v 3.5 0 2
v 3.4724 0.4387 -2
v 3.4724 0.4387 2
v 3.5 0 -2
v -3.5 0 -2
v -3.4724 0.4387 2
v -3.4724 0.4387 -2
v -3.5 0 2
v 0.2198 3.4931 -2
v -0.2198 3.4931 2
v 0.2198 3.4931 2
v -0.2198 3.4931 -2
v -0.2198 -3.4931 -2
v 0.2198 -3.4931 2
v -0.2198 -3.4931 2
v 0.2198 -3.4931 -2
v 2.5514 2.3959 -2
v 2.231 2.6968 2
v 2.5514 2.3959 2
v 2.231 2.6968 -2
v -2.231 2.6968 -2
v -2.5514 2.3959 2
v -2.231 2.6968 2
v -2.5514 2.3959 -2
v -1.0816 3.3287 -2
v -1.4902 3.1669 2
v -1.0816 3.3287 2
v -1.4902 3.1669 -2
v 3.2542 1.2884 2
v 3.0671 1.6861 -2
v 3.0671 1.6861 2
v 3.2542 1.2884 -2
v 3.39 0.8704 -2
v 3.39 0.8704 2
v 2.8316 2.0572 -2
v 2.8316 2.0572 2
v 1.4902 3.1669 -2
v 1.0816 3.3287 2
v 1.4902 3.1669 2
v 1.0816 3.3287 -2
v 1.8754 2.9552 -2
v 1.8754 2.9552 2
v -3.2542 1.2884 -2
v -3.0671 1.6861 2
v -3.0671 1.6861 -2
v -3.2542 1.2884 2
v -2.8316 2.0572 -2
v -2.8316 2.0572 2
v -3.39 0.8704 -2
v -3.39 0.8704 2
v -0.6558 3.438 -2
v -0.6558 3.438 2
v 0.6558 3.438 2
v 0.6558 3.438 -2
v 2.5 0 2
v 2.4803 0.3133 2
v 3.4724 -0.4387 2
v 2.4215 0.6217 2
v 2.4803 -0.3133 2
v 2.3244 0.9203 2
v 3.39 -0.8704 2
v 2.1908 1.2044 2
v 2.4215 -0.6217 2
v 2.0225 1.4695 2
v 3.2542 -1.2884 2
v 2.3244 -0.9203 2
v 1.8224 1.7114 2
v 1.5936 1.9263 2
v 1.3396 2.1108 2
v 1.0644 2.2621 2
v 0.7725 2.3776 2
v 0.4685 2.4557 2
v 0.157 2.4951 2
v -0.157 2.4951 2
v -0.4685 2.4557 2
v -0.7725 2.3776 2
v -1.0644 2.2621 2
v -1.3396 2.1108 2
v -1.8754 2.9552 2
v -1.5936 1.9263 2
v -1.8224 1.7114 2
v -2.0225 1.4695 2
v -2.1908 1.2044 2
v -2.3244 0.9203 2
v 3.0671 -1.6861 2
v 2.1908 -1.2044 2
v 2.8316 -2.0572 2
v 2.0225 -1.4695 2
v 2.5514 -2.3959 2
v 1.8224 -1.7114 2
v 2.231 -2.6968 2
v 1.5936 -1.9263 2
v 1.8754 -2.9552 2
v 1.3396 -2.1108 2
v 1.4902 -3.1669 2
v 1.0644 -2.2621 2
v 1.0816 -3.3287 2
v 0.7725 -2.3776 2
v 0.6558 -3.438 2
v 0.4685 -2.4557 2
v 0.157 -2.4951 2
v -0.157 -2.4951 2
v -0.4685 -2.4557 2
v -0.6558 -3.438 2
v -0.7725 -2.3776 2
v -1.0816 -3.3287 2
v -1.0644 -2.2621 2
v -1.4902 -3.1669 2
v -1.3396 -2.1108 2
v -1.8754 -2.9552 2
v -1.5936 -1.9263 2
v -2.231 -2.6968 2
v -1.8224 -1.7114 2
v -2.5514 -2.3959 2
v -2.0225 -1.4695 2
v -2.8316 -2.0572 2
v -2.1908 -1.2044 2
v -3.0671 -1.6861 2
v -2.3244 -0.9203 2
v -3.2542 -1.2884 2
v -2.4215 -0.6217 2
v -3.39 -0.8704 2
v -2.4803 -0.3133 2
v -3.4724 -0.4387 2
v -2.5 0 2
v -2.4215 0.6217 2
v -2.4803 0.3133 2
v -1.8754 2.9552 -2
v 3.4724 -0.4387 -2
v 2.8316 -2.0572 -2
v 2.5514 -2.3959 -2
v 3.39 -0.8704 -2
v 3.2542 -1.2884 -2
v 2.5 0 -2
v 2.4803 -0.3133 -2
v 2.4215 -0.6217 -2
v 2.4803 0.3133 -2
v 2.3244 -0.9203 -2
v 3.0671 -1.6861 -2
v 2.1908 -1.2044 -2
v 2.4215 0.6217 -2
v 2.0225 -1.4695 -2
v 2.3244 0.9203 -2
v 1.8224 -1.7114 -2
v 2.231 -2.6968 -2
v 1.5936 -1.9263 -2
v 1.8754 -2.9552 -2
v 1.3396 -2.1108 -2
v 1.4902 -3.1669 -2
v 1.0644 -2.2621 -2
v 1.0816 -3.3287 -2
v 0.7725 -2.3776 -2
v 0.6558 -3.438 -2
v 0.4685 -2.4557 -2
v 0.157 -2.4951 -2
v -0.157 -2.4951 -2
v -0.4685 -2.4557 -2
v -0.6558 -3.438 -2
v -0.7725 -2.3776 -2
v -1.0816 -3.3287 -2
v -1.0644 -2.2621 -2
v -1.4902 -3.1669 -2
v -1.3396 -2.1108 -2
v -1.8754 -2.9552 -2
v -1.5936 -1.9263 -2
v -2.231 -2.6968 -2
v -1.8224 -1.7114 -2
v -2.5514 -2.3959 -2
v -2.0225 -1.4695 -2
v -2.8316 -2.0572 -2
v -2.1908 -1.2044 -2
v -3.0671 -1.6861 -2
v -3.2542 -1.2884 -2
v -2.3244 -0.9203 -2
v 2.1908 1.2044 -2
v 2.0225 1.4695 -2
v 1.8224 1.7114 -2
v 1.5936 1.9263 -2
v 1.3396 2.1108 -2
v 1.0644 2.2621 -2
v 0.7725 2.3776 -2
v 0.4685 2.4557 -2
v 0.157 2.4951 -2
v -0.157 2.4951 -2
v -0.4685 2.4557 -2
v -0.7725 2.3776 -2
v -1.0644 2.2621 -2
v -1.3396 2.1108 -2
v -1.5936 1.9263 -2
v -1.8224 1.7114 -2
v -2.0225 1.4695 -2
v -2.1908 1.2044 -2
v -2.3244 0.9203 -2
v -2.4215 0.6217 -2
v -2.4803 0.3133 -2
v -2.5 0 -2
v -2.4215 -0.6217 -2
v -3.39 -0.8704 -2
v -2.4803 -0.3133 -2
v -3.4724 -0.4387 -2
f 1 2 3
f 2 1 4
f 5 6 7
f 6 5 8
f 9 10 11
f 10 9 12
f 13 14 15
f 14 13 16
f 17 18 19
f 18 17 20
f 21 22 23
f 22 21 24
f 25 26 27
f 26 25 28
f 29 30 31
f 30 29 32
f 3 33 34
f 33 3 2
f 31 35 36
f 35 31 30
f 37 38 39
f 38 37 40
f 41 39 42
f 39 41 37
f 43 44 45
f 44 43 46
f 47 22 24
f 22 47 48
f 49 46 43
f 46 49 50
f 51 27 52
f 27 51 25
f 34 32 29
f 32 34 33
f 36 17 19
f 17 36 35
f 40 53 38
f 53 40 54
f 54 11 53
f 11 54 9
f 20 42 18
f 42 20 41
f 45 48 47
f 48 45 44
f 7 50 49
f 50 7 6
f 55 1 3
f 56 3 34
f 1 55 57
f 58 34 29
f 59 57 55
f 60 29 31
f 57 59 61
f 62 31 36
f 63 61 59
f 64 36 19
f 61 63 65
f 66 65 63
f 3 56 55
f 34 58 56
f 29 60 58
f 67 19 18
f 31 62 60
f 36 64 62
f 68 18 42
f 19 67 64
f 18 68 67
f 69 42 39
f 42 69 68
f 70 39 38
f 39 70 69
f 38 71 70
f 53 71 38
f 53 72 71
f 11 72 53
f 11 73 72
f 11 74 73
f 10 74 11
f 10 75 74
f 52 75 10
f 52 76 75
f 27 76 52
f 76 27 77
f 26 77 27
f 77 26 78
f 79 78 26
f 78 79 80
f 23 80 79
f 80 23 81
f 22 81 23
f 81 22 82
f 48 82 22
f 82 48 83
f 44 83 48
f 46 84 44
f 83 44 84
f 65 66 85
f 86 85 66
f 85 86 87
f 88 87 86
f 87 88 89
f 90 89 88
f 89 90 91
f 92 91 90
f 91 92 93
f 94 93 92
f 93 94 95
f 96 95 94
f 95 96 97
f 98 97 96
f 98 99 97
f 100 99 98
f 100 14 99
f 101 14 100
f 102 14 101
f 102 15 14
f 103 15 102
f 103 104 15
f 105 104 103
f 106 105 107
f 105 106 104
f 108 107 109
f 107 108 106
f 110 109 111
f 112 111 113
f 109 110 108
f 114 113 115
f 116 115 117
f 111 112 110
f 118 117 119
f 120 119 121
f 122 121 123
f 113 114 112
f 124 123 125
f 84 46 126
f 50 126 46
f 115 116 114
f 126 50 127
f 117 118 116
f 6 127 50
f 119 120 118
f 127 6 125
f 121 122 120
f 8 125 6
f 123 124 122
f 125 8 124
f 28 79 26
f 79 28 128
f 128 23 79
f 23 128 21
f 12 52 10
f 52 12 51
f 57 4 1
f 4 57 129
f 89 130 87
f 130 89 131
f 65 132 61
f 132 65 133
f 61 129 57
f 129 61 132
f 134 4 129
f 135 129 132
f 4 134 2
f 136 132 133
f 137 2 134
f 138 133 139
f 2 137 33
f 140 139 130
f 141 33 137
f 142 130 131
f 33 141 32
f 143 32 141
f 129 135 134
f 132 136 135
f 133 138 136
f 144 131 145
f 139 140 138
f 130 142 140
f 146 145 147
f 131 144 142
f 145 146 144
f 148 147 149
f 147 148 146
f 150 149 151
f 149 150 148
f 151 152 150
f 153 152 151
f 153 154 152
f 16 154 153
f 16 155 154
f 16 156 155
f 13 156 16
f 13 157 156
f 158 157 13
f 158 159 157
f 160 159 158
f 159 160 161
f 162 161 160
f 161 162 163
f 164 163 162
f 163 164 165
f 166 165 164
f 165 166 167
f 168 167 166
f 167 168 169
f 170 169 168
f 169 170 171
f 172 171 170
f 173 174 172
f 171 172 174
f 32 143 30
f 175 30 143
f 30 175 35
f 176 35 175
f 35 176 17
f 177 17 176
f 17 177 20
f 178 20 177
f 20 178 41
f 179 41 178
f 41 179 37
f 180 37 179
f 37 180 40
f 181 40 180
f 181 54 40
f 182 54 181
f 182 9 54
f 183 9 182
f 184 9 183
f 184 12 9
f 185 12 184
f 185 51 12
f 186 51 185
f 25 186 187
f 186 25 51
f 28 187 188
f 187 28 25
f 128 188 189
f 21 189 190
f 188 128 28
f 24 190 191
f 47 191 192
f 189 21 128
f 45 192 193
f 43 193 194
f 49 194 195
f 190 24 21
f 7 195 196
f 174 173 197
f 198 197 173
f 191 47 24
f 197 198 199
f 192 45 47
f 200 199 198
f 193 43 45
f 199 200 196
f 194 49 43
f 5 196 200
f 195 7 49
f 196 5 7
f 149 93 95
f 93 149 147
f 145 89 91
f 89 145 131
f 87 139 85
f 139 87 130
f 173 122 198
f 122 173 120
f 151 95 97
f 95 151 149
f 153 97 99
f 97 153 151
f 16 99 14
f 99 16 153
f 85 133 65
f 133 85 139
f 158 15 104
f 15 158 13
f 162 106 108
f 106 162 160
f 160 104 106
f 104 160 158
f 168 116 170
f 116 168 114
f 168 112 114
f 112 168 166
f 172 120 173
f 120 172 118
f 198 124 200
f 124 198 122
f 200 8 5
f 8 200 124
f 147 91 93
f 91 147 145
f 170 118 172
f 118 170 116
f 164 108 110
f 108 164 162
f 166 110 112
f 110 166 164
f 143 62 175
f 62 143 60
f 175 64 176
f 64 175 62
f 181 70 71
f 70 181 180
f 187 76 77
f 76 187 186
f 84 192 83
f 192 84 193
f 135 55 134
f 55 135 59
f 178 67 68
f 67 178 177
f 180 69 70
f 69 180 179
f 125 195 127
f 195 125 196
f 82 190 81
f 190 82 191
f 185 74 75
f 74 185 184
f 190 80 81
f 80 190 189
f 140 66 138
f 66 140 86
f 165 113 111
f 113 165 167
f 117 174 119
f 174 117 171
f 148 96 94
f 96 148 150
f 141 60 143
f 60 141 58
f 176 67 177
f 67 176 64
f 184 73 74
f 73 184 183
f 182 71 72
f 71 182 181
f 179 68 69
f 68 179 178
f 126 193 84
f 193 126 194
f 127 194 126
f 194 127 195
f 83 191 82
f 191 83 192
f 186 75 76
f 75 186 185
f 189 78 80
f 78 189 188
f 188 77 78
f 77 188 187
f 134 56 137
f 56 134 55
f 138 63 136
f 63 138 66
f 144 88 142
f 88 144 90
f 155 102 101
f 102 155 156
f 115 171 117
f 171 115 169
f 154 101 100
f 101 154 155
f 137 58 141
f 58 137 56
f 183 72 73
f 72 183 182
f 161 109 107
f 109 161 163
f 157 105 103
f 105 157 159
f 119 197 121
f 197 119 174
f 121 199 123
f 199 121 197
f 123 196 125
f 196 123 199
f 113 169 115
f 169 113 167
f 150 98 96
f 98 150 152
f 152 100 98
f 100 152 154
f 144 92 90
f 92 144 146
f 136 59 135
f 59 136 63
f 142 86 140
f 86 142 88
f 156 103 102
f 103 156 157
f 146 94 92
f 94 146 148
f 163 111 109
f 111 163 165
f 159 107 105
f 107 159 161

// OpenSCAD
$fn = 50;


difference() {
	union() {
		translate(v = [0, 0, -2.0000000000]) {
			cylinder(h = 4, r = 3.5000000000);
		}
	}
	union() {
		translate(v = [0, 0, -100.0000000000]) {
			cylinder(h = 200, r = 2.5000000000);
		}
	}
}
